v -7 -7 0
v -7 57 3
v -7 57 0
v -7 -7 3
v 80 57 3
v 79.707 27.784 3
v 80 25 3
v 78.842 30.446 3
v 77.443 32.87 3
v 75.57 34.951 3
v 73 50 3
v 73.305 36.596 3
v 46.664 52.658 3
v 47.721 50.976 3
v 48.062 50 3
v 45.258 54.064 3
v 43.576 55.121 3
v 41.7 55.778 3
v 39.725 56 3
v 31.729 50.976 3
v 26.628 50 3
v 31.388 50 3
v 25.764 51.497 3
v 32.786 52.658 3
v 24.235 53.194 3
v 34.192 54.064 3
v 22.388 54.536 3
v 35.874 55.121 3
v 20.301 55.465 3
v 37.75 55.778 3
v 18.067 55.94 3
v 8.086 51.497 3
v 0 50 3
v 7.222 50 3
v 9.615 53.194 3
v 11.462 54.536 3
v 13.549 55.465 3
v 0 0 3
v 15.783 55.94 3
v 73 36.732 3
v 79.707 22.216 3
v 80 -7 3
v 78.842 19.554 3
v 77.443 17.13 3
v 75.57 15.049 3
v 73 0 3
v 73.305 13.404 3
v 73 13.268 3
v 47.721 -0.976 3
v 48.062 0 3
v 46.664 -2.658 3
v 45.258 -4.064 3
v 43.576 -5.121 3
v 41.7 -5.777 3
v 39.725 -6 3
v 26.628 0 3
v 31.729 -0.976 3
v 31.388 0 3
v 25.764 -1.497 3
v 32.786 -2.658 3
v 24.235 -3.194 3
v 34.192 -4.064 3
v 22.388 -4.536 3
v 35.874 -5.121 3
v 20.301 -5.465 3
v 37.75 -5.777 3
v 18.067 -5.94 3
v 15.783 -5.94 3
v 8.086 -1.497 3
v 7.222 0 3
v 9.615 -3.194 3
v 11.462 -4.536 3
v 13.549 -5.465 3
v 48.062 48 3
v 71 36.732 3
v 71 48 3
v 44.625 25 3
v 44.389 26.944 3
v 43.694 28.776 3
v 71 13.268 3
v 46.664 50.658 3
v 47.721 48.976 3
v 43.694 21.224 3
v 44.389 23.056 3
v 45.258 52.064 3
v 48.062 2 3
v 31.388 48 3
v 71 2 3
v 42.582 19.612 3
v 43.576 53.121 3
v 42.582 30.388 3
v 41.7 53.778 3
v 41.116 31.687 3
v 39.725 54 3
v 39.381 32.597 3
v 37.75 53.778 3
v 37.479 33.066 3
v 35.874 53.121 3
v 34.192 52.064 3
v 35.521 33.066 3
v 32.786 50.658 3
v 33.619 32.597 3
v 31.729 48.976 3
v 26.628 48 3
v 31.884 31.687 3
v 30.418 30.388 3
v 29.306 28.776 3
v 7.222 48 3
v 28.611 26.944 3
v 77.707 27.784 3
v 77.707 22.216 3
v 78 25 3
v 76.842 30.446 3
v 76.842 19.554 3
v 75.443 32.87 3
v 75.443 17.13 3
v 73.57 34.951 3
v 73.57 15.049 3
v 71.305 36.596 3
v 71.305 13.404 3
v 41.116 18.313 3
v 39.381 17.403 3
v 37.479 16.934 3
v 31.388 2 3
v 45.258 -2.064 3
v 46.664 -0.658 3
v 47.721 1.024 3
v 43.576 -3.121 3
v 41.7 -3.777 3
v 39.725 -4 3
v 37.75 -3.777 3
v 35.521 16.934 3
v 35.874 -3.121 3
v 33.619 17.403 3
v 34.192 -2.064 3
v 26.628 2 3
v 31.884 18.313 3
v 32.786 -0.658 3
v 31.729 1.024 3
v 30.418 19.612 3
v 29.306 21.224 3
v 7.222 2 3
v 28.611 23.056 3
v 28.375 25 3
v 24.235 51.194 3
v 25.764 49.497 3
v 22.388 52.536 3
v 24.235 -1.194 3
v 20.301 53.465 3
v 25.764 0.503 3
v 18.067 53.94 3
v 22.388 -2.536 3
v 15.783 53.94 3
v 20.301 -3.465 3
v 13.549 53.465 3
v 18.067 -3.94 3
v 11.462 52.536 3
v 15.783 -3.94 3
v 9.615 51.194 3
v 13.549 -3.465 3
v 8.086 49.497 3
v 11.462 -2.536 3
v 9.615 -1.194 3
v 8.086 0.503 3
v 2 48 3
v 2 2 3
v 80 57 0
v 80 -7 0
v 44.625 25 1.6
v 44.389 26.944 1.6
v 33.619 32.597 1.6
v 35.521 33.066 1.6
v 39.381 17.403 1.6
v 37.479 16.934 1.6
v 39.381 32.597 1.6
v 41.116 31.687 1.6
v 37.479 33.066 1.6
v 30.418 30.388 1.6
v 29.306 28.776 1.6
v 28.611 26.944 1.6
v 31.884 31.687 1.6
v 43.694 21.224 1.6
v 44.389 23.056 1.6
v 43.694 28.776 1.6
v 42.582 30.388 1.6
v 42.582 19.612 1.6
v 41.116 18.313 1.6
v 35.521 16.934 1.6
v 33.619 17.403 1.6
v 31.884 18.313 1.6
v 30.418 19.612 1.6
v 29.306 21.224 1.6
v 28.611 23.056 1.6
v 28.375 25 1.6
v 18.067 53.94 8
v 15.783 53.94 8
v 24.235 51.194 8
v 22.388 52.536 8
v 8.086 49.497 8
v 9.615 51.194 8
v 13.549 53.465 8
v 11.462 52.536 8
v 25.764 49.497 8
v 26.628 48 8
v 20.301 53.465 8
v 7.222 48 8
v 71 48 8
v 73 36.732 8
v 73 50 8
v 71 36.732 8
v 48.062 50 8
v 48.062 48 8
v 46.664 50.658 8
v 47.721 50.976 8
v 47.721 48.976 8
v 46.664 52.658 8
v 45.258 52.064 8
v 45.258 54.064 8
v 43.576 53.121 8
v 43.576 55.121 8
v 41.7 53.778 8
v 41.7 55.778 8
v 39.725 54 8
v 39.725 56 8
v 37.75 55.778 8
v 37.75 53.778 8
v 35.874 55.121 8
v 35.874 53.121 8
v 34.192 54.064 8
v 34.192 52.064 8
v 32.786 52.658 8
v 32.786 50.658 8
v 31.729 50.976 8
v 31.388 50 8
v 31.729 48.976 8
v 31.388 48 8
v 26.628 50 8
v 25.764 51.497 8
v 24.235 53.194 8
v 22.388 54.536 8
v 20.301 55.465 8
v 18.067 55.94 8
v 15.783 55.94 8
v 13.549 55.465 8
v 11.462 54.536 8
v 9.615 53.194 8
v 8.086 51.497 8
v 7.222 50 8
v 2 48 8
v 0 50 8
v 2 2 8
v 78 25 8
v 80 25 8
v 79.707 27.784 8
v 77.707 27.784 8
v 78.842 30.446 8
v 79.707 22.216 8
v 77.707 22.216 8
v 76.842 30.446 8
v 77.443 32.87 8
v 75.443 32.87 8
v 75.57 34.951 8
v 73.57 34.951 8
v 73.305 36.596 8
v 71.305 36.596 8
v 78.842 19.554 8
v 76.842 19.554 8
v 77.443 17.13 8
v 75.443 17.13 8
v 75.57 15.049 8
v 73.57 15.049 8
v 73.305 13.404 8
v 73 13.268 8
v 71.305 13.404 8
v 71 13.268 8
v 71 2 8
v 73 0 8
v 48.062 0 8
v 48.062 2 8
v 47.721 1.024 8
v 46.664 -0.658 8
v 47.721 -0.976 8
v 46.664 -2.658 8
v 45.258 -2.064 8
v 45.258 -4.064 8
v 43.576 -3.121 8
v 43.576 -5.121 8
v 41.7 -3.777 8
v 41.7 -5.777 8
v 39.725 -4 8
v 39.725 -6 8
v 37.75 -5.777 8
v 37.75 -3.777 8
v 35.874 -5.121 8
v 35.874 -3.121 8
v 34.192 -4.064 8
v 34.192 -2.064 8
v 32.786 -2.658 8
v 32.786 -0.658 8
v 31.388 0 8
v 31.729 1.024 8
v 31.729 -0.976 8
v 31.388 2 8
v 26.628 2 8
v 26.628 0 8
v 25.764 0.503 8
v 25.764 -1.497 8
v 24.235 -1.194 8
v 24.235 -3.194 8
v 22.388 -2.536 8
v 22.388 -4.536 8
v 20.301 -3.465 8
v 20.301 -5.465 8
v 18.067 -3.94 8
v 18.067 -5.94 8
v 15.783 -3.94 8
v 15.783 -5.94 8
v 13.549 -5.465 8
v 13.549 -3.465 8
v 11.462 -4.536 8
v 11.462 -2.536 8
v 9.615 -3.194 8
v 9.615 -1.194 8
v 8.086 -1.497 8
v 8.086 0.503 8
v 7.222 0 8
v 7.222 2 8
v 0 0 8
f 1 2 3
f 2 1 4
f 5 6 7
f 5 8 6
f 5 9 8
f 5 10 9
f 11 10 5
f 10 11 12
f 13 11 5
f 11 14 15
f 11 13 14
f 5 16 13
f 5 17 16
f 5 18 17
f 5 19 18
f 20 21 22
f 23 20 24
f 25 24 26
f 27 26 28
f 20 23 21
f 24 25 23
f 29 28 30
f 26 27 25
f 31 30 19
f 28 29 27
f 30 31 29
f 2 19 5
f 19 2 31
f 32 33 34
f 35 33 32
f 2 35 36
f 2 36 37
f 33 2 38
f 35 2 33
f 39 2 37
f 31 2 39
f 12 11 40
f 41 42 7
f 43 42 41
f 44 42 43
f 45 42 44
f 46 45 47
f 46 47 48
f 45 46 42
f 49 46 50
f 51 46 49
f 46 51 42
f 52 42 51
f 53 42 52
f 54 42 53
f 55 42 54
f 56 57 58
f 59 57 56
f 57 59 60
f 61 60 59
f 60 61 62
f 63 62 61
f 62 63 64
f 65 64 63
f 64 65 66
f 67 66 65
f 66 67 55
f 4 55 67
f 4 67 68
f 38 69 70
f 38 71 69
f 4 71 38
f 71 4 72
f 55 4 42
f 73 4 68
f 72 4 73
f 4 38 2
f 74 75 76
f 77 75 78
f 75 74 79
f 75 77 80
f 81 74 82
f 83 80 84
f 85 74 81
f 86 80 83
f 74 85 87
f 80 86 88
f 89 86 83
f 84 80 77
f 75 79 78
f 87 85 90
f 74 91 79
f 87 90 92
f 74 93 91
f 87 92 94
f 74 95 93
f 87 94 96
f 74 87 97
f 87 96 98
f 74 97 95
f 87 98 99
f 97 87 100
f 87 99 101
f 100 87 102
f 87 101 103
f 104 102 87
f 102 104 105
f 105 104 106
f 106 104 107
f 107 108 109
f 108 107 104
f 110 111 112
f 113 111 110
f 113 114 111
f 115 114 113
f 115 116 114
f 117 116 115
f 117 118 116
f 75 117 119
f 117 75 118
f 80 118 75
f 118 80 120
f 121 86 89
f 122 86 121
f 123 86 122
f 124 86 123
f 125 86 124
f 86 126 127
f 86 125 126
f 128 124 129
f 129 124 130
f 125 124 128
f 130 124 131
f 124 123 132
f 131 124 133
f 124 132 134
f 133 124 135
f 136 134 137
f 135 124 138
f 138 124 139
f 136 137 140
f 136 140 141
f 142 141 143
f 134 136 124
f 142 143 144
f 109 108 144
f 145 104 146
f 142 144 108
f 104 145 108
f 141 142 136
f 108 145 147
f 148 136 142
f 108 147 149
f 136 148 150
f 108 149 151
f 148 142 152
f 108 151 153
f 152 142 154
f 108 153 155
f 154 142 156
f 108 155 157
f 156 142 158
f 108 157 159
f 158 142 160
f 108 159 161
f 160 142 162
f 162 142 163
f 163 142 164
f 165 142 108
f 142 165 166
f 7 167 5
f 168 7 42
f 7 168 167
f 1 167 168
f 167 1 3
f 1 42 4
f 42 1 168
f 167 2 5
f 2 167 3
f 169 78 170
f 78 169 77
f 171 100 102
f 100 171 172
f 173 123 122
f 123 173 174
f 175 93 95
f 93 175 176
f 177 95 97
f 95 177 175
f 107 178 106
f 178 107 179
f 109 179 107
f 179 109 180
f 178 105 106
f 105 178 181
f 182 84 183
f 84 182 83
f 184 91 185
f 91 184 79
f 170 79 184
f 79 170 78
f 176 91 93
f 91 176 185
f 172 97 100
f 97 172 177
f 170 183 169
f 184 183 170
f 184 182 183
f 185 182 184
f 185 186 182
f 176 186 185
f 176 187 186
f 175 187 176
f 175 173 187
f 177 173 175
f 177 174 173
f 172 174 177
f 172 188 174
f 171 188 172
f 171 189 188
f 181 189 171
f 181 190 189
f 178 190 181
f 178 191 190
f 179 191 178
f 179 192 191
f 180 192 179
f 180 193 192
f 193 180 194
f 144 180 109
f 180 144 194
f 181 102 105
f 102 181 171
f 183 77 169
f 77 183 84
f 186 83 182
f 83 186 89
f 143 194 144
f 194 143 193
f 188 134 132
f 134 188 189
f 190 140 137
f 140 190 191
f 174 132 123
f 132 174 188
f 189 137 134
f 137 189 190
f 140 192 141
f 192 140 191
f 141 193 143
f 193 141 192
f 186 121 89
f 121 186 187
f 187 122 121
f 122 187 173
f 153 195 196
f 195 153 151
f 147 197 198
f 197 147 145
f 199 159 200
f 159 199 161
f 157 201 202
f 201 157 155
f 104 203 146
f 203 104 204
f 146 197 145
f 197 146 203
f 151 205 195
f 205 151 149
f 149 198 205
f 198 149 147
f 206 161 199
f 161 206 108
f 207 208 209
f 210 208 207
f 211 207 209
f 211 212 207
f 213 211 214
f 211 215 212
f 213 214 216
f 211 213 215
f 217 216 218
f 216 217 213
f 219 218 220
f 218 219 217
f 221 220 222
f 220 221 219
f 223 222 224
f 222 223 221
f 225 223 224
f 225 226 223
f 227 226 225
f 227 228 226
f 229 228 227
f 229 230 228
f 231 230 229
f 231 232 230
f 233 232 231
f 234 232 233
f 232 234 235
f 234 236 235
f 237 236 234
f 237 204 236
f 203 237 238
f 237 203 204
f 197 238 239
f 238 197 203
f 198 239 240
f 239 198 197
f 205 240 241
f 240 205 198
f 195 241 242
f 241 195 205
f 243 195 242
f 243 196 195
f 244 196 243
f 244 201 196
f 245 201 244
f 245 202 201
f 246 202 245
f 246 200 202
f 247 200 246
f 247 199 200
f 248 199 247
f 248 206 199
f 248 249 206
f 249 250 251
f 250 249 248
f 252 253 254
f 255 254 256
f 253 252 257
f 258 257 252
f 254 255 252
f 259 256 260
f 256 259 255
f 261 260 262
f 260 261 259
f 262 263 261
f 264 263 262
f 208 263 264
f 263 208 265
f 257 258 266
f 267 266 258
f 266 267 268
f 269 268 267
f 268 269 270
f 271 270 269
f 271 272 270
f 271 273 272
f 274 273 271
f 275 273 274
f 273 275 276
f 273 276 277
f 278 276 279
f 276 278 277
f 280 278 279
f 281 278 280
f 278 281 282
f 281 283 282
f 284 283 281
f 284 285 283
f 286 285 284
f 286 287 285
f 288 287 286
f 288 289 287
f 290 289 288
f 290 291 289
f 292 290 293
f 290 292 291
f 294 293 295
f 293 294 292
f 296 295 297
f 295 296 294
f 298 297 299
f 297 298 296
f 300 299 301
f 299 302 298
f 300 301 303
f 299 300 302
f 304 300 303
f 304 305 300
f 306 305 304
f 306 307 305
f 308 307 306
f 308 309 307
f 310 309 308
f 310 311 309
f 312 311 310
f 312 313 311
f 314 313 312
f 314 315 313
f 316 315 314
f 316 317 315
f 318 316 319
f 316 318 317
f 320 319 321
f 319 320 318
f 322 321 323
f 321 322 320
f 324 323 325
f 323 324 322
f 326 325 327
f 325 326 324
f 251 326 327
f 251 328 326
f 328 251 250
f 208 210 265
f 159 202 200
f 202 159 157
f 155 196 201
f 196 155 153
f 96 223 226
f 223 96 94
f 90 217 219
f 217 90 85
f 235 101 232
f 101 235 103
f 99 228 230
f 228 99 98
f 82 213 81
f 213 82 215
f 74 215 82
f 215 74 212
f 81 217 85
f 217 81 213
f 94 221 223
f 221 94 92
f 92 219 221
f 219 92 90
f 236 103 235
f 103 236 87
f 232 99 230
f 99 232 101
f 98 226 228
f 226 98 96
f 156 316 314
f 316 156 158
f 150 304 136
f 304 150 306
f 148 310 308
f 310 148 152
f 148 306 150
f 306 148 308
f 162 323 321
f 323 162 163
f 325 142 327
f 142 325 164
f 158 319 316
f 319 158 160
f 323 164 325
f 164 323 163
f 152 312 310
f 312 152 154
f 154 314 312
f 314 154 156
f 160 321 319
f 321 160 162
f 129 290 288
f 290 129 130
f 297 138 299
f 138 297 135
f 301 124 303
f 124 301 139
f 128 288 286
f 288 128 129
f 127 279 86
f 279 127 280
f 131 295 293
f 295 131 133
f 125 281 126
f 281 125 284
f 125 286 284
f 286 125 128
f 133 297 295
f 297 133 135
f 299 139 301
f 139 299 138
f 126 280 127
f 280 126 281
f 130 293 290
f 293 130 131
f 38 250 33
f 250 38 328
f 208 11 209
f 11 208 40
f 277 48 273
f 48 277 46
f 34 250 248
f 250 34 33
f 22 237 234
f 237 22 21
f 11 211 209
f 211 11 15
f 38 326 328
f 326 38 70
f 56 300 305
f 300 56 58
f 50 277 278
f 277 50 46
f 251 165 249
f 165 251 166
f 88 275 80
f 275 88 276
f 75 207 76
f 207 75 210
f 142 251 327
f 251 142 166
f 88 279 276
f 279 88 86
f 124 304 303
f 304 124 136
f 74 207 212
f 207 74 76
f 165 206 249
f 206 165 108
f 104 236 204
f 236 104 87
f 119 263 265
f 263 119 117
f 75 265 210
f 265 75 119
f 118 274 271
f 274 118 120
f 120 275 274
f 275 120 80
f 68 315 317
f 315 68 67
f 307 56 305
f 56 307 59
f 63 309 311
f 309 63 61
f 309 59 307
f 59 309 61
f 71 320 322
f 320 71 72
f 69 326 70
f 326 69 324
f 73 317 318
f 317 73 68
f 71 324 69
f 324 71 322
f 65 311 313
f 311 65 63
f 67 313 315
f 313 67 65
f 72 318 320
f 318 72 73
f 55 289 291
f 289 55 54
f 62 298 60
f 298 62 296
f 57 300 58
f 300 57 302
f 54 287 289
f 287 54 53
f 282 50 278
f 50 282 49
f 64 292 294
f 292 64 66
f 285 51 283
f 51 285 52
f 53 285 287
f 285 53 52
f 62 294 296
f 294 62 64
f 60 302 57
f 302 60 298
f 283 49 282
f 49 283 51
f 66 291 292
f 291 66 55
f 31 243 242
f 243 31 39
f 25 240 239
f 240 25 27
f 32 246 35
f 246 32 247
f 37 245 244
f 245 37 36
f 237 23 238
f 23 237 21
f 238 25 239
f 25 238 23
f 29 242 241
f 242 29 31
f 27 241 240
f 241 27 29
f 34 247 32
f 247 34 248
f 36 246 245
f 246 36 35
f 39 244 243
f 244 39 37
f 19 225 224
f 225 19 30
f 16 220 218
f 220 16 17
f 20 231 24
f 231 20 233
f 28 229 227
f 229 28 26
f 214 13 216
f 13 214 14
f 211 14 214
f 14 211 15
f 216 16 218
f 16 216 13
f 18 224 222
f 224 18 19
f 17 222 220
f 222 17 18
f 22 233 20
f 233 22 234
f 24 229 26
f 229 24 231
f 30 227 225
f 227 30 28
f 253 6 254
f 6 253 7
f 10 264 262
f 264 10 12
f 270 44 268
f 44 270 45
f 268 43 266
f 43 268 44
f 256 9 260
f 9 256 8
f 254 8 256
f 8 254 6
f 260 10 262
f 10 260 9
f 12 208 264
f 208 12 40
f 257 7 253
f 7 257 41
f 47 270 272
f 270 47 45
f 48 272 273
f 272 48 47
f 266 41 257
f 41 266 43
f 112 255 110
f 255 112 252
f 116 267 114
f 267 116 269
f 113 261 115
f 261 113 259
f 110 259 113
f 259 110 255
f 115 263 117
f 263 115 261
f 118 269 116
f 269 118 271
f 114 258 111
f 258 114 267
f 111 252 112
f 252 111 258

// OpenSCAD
length = 68;
width = 45;
height = 3;
rimHeight = 5;
rimThickness = 2;
notchLength = 25;
//Based on washer size:
washerDiameter = 16.25;
washerHeight = 1.4;
rimPadding = 1;
totalHeight = height + rimHeight;

totalLength = length + rimThickness * 2 + rimPadding;
totalWidth = width + rimThickness * 2 + rimPadding;
extraLidForCircles = 7;

smallCircleDiameter = 17.25 + .5;
smallCircleOffset = 4;

mediumCircleDiameter = 21.35 + .5;
mediumCircleOffset = 4;

largeCircleDiameter = 26.28 + .5;
largeCircleOffset = 5;

union()
{
    difference() {
        translate([-extraLidForCircles, -extraLidForCircles, 0])
            cube([totalLength + 2 * extraLidForCircles, totalWidth + 2 * extraLidForCircles, height]);
        translate([totalLength/2, totalWidth/2, height - washerHeight])
            cylinder(washerHeight, d=washerDiameter);
    }
    
    difference() {
        translate([0, 0, height])
            cube([totalLength, totalWidth, rimHeight]);
        translate([rimThickness, rimThickness, height])
            cube([length + rimPadding, width + rimPadding, rimHeight]);
        RightLengthCircles();
        LeftLengthCircles();
        WidthCircles();
    }
    
    difference(){
        union()
        {
            translate([0, -rimThickness, 0])
                LeftLengthCircles();
            translate([0, rimThickness, 0])
                RightLengthCircles();
            translate([rimThickness, 0, 0])
                WidthCircles();
        }
        translate([0, 0, height])
            cube([totalLength, totalWidth, rimHeight]);
        RightLengthCircles();
        LeftLengthCircles();
        WidthCircles();
    }
}


module LeftLengthCircles()
{
    spaceBetweenCircles = 3;
    translate([mediumCircleDiameter/2 + spaceBetweenCircles + rimThickness + rimPadding, mediumCircleDiameter/2 - mediumCircleOffset, height])
        cylinder(rimHeight, d=mediumCircleDiameter);

    translate([mediumCircleDiameter + spaceBetweenCircles * 2 + smallCircleDiameter/2 + rimThickness + rimPadding, smallCircleDiameter/2 - smallCircleOffset, height])
        cylinder(rimHeight, d=smallCircleDiameter);
}

module RightLengthCircles()
{
    spaceBetweenCircles = 3;
    translate([mediumCircleDiameter/2 + spaceBetweenCircles + rimThickness + rimPadding, totalWidth - (mediumCircleDiameter/2 - mediumCircleOffset), height])
        cylinder(rimHeight, d=mediumCircleDiameter);

    translate([mediumCircleDiameter + spaceBetweenCircles * 2 + smallCircleDiameter/2 + rimThickness + rimPadding, totalWidth - (smallCircleDiameter/2 - smallCircleOffset), height])
        cylinder(rimHeight, d=smallCircleDiameter);
}

module WidthCircles()
{
    
    translate([totalLength - (largeCircleDiameter/2 - largeCircleOffset), totalWidth/2, height])
        cylinder(rimHeight, d=largeCircleDiameter);
}
